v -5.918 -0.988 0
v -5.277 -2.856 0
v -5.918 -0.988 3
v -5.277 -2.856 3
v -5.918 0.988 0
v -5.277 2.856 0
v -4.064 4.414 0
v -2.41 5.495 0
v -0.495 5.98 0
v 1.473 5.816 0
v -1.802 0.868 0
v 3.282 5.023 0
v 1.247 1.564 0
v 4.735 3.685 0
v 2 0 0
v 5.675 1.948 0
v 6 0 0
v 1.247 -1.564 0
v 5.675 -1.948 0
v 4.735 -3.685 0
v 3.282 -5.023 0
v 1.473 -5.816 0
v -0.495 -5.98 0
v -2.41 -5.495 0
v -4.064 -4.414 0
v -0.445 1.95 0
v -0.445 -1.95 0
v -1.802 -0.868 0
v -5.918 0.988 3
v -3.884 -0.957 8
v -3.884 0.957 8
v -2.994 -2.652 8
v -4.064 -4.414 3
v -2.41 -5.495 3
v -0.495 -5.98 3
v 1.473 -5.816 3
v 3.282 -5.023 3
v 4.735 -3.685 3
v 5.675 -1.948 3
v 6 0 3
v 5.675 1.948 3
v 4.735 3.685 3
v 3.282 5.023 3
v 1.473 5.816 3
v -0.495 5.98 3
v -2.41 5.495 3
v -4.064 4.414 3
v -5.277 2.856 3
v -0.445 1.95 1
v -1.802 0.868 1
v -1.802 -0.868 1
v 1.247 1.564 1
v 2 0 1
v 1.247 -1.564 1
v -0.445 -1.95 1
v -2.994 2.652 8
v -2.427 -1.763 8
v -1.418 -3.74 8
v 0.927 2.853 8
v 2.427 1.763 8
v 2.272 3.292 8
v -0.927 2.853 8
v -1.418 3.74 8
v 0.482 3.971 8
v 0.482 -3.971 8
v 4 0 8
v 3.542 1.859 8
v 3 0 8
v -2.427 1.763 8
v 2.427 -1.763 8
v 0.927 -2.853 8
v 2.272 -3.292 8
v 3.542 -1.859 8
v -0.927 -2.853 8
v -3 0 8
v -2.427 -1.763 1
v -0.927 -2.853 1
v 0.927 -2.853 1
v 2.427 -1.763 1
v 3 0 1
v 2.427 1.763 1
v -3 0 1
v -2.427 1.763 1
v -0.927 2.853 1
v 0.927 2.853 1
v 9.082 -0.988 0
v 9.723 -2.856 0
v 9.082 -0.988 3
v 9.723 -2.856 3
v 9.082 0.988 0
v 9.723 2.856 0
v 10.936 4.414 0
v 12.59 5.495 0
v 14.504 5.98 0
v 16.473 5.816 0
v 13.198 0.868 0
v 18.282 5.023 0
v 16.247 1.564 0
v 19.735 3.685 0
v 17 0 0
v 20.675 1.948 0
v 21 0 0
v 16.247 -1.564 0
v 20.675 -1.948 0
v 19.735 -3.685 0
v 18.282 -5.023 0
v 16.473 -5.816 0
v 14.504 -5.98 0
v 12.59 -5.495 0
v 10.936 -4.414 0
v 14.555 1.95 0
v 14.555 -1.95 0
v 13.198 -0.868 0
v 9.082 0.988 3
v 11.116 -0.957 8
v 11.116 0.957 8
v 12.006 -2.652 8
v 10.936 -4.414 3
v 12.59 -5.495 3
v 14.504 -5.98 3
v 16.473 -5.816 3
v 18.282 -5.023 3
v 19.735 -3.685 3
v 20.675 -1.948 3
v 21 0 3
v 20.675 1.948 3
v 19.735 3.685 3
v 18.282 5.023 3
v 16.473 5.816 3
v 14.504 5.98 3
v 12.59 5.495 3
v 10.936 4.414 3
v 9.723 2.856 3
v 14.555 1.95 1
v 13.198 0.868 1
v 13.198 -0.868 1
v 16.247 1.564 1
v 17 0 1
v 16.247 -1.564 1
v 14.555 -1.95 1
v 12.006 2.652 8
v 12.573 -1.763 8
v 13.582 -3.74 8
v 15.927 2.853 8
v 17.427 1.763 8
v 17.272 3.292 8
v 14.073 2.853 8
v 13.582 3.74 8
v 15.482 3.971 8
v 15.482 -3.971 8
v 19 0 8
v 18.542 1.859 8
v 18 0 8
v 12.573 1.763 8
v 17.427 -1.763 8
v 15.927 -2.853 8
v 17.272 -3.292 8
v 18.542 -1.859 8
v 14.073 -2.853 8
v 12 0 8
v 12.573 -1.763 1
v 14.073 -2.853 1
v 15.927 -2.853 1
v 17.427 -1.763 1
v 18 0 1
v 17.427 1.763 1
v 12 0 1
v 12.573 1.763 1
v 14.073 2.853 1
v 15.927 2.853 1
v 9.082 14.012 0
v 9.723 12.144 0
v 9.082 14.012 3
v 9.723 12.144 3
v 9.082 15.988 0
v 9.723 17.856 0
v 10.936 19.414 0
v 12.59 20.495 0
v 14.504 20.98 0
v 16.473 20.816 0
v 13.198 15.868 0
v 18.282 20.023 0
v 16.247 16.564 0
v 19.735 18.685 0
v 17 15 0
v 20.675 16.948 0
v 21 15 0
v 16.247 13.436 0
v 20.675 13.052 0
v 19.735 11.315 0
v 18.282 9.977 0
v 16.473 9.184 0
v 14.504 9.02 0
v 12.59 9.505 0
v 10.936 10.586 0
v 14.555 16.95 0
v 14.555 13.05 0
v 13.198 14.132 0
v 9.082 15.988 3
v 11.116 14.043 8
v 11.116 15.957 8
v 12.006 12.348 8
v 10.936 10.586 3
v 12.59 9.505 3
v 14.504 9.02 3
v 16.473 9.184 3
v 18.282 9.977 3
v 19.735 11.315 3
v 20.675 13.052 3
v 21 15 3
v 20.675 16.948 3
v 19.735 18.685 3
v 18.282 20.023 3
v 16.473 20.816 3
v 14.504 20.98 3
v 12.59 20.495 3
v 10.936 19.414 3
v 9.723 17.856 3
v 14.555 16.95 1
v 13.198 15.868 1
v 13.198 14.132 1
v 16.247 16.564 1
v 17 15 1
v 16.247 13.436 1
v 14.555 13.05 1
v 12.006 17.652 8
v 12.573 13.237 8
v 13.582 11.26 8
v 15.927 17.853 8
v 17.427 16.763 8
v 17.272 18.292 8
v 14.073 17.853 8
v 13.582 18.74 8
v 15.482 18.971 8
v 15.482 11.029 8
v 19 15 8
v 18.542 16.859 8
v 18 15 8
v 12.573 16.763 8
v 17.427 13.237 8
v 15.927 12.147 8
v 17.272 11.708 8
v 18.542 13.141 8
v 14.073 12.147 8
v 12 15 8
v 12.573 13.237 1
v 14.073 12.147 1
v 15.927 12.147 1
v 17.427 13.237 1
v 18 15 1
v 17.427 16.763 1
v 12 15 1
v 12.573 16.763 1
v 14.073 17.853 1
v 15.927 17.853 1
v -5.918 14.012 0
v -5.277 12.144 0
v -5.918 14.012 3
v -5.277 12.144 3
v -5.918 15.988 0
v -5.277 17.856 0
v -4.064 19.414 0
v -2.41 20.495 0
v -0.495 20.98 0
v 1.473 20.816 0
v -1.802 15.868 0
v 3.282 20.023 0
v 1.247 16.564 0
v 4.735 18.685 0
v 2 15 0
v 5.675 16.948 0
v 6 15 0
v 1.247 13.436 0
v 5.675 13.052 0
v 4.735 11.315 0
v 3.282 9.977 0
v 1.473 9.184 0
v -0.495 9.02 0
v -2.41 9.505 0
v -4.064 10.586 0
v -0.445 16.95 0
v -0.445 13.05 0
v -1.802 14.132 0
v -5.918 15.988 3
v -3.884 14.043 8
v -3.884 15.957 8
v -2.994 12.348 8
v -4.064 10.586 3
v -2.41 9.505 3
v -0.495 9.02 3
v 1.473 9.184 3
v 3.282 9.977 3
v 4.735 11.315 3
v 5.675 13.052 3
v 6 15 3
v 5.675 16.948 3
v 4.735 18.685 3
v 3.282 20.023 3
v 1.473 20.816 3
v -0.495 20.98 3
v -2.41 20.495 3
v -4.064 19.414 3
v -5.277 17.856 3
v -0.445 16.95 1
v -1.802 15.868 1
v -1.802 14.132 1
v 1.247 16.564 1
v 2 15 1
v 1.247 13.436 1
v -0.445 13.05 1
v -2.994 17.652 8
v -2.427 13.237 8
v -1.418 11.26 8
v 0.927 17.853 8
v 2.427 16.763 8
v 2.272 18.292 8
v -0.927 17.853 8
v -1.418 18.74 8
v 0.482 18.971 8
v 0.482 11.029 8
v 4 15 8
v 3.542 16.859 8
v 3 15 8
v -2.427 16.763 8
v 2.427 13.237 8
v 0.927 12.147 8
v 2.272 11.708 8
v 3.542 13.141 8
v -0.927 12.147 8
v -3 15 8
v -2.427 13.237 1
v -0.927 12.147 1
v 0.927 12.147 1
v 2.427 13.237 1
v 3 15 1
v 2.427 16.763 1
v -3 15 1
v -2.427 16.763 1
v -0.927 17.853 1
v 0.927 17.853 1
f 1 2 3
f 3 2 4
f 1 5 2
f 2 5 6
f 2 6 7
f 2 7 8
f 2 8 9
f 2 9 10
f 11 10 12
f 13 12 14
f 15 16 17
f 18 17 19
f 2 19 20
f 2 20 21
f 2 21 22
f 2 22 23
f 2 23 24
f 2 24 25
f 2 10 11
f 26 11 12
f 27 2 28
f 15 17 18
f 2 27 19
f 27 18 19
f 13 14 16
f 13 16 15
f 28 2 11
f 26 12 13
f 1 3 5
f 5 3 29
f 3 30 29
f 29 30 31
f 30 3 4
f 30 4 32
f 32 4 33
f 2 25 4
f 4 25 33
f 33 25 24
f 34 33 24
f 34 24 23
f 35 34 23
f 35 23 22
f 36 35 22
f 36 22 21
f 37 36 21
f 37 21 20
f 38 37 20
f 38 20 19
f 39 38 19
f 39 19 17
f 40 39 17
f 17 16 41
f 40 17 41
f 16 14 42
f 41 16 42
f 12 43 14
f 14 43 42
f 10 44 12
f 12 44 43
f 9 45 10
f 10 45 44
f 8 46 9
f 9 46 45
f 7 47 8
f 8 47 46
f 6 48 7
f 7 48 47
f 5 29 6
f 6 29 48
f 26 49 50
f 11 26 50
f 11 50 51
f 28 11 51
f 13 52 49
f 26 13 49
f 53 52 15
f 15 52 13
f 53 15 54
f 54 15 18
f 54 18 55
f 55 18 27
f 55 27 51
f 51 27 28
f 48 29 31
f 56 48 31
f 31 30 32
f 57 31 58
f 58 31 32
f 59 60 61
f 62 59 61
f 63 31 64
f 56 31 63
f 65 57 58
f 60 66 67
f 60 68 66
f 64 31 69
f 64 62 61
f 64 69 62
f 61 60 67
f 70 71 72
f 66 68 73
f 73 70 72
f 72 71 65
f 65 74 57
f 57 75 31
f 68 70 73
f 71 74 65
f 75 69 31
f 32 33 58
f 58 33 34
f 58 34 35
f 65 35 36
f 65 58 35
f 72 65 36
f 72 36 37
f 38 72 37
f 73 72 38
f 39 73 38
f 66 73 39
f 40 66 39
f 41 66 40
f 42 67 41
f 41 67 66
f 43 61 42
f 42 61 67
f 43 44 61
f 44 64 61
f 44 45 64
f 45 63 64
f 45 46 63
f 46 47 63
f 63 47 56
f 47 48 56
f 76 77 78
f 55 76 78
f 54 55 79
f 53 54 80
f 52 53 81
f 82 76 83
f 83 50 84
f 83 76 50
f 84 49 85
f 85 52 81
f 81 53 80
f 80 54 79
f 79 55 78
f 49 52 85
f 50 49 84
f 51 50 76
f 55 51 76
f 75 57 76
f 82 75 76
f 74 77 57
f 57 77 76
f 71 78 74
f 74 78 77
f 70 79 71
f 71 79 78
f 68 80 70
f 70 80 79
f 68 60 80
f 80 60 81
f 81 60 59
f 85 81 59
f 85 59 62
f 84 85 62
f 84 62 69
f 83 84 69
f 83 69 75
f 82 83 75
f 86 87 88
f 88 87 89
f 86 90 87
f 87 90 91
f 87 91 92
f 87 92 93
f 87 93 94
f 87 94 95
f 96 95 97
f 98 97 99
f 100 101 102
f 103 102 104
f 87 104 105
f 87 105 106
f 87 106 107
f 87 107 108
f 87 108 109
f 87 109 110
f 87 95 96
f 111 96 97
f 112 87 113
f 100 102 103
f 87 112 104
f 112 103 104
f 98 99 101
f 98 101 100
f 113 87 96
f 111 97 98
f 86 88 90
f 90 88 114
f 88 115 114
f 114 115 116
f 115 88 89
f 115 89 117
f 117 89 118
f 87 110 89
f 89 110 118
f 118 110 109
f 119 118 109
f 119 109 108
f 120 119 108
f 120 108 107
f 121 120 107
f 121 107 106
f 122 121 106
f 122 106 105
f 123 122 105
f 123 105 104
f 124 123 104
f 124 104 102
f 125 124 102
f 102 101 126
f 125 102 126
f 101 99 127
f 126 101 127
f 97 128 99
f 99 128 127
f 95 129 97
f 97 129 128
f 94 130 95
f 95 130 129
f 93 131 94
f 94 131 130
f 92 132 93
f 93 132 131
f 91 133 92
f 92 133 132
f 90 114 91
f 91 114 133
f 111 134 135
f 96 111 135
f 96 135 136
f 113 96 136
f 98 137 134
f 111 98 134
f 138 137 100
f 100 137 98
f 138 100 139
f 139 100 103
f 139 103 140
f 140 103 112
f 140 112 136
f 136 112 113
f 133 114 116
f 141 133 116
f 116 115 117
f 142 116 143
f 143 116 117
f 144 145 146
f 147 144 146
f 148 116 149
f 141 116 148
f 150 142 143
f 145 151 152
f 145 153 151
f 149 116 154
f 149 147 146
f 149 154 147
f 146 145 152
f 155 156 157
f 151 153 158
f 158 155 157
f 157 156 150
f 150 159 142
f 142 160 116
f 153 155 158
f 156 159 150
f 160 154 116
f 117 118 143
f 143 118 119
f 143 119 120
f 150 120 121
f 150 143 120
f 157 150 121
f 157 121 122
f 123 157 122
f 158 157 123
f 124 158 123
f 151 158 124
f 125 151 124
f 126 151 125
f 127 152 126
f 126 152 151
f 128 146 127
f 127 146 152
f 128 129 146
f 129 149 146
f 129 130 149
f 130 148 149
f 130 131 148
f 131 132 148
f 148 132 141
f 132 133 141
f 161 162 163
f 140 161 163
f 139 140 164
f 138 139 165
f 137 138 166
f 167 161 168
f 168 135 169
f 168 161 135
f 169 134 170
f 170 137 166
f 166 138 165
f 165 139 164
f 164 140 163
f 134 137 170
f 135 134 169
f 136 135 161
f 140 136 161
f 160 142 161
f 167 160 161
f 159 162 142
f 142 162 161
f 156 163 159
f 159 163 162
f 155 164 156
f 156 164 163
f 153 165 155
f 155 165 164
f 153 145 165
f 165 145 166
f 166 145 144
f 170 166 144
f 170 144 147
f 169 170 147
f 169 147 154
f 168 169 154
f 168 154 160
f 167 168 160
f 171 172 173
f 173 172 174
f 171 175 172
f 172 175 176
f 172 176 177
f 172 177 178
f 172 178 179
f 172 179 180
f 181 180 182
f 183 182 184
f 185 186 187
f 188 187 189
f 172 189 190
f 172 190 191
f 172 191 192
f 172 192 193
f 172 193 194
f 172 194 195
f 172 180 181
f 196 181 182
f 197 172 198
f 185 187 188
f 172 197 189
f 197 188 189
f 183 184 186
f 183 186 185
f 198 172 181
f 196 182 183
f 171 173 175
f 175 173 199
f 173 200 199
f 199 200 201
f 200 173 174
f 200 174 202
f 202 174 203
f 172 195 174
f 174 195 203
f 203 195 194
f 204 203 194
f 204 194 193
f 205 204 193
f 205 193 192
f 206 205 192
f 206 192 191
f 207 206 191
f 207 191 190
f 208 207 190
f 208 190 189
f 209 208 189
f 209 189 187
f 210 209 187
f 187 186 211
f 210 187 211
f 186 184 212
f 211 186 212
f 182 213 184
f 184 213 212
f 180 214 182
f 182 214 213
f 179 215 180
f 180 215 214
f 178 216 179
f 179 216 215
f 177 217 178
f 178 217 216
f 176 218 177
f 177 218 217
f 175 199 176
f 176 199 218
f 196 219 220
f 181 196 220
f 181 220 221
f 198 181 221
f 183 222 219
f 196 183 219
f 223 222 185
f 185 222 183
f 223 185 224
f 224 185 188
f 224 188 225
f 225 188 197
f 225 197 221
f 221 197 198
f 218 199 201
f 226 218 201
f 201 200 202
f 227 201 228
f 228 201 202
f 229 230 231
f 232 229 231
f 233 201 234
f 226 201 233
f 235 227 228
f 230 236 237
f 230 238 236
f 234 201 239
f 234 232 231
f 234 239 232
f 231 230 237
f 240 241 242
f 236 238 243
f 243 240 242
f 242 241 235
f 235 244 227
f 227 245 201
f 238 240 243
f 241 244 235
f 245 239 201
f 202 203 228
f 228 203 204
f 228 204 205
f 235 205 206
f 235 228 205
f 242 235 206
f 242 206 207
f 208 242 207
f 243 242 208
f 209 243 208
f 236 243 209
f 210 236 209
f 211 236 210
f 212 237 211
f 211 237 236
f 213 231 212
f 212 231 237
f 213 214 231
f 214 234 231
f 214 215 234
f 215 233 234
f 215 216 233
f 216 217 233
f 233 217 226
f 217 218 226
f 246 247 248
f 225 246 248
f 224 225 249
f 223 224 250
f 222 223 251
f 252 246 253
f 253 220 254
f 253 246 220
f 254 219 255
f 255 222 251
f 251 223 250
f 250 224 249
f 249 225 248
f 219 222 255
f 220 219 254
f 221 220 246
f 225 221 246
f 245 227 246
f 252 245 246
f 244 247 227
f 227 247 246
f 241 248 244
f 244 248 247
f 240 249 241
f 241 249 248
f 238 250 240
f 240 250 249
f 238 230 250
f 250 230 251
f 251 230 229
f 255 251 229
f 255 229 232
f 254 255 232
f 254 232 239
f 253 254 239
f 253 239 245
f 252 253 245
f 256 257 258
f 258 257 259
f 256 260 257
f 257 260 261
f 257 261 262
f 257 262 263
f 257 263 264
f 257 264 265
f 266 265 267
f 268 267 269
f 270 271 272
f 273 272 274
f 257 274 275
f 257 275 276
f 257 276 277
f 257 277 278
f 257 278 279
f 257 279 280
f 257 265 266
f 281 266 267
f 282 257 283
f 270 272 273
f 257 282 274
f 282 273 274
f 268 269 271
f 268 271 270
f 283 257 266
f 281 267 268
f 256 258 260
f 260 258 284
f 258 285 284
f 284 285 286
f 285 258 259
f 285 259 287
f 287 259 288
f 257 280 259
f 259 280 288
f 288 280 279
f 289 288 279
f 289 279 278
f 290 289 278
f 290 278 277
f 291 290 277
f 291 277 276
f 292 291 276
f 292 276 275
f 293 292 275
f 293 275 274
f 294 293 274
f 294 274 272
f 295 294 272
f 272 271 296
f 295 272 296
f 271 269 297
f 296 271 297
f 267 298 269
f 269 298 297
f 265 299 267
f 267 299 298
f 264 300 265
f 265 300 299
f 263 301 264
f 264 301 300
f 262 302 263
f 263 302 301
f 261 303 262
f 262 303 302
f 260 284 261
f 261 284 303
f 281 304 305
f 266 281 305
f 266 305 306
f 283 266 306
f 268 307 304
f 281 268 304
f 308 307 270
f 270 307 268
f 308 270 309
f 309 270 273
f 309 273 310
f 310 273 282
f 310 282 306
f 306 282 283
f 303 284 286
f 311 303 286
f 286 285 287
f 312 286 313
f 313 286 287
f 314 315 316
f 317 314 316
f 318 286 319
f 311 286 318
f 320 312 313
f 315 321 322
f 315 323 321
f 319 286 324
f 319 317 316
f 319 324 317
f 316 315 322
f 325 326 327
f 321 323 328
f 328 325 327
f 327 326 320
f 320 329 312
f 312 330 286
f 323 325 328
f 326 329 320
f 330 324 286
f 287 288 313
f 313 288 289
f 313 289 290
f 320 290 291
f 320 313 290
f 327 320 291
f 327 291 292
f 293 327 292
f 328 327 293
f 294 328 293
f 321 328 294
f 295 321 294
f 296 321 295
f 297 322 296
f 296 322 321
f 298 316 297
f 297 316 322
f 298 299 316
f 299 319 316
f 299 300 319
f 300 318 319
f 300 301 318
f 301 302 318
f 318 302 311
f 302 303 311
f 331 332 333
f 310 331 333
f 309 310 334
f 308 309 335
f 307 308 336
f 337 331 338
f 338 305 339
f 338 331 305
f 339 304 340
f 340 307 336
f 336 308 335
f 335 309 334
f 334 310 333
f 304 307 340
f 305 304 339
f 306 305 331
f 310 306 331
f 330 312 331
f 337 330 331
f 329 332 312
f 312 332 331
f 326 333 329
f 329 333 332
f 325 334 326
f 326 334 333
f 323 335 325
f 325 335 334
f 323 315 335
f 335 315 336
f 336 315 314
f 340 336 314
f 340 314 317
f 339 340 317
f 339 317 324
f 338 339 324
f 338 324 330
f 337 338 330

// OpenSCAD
module separador(){
difference(){
hull(){
cylinder(r=6,h=3);
cylinder(r=4,h=8);
}
translate([0,0,-1])cylinder(r=2,h=10);
translate([0,0,1])cylinder(r=3,h=10);
}
}

translate([0,0,0])separador();
translate([15,0,0])separador();
translate([15,15,0])separador();
translate([0,15,0])separador();
